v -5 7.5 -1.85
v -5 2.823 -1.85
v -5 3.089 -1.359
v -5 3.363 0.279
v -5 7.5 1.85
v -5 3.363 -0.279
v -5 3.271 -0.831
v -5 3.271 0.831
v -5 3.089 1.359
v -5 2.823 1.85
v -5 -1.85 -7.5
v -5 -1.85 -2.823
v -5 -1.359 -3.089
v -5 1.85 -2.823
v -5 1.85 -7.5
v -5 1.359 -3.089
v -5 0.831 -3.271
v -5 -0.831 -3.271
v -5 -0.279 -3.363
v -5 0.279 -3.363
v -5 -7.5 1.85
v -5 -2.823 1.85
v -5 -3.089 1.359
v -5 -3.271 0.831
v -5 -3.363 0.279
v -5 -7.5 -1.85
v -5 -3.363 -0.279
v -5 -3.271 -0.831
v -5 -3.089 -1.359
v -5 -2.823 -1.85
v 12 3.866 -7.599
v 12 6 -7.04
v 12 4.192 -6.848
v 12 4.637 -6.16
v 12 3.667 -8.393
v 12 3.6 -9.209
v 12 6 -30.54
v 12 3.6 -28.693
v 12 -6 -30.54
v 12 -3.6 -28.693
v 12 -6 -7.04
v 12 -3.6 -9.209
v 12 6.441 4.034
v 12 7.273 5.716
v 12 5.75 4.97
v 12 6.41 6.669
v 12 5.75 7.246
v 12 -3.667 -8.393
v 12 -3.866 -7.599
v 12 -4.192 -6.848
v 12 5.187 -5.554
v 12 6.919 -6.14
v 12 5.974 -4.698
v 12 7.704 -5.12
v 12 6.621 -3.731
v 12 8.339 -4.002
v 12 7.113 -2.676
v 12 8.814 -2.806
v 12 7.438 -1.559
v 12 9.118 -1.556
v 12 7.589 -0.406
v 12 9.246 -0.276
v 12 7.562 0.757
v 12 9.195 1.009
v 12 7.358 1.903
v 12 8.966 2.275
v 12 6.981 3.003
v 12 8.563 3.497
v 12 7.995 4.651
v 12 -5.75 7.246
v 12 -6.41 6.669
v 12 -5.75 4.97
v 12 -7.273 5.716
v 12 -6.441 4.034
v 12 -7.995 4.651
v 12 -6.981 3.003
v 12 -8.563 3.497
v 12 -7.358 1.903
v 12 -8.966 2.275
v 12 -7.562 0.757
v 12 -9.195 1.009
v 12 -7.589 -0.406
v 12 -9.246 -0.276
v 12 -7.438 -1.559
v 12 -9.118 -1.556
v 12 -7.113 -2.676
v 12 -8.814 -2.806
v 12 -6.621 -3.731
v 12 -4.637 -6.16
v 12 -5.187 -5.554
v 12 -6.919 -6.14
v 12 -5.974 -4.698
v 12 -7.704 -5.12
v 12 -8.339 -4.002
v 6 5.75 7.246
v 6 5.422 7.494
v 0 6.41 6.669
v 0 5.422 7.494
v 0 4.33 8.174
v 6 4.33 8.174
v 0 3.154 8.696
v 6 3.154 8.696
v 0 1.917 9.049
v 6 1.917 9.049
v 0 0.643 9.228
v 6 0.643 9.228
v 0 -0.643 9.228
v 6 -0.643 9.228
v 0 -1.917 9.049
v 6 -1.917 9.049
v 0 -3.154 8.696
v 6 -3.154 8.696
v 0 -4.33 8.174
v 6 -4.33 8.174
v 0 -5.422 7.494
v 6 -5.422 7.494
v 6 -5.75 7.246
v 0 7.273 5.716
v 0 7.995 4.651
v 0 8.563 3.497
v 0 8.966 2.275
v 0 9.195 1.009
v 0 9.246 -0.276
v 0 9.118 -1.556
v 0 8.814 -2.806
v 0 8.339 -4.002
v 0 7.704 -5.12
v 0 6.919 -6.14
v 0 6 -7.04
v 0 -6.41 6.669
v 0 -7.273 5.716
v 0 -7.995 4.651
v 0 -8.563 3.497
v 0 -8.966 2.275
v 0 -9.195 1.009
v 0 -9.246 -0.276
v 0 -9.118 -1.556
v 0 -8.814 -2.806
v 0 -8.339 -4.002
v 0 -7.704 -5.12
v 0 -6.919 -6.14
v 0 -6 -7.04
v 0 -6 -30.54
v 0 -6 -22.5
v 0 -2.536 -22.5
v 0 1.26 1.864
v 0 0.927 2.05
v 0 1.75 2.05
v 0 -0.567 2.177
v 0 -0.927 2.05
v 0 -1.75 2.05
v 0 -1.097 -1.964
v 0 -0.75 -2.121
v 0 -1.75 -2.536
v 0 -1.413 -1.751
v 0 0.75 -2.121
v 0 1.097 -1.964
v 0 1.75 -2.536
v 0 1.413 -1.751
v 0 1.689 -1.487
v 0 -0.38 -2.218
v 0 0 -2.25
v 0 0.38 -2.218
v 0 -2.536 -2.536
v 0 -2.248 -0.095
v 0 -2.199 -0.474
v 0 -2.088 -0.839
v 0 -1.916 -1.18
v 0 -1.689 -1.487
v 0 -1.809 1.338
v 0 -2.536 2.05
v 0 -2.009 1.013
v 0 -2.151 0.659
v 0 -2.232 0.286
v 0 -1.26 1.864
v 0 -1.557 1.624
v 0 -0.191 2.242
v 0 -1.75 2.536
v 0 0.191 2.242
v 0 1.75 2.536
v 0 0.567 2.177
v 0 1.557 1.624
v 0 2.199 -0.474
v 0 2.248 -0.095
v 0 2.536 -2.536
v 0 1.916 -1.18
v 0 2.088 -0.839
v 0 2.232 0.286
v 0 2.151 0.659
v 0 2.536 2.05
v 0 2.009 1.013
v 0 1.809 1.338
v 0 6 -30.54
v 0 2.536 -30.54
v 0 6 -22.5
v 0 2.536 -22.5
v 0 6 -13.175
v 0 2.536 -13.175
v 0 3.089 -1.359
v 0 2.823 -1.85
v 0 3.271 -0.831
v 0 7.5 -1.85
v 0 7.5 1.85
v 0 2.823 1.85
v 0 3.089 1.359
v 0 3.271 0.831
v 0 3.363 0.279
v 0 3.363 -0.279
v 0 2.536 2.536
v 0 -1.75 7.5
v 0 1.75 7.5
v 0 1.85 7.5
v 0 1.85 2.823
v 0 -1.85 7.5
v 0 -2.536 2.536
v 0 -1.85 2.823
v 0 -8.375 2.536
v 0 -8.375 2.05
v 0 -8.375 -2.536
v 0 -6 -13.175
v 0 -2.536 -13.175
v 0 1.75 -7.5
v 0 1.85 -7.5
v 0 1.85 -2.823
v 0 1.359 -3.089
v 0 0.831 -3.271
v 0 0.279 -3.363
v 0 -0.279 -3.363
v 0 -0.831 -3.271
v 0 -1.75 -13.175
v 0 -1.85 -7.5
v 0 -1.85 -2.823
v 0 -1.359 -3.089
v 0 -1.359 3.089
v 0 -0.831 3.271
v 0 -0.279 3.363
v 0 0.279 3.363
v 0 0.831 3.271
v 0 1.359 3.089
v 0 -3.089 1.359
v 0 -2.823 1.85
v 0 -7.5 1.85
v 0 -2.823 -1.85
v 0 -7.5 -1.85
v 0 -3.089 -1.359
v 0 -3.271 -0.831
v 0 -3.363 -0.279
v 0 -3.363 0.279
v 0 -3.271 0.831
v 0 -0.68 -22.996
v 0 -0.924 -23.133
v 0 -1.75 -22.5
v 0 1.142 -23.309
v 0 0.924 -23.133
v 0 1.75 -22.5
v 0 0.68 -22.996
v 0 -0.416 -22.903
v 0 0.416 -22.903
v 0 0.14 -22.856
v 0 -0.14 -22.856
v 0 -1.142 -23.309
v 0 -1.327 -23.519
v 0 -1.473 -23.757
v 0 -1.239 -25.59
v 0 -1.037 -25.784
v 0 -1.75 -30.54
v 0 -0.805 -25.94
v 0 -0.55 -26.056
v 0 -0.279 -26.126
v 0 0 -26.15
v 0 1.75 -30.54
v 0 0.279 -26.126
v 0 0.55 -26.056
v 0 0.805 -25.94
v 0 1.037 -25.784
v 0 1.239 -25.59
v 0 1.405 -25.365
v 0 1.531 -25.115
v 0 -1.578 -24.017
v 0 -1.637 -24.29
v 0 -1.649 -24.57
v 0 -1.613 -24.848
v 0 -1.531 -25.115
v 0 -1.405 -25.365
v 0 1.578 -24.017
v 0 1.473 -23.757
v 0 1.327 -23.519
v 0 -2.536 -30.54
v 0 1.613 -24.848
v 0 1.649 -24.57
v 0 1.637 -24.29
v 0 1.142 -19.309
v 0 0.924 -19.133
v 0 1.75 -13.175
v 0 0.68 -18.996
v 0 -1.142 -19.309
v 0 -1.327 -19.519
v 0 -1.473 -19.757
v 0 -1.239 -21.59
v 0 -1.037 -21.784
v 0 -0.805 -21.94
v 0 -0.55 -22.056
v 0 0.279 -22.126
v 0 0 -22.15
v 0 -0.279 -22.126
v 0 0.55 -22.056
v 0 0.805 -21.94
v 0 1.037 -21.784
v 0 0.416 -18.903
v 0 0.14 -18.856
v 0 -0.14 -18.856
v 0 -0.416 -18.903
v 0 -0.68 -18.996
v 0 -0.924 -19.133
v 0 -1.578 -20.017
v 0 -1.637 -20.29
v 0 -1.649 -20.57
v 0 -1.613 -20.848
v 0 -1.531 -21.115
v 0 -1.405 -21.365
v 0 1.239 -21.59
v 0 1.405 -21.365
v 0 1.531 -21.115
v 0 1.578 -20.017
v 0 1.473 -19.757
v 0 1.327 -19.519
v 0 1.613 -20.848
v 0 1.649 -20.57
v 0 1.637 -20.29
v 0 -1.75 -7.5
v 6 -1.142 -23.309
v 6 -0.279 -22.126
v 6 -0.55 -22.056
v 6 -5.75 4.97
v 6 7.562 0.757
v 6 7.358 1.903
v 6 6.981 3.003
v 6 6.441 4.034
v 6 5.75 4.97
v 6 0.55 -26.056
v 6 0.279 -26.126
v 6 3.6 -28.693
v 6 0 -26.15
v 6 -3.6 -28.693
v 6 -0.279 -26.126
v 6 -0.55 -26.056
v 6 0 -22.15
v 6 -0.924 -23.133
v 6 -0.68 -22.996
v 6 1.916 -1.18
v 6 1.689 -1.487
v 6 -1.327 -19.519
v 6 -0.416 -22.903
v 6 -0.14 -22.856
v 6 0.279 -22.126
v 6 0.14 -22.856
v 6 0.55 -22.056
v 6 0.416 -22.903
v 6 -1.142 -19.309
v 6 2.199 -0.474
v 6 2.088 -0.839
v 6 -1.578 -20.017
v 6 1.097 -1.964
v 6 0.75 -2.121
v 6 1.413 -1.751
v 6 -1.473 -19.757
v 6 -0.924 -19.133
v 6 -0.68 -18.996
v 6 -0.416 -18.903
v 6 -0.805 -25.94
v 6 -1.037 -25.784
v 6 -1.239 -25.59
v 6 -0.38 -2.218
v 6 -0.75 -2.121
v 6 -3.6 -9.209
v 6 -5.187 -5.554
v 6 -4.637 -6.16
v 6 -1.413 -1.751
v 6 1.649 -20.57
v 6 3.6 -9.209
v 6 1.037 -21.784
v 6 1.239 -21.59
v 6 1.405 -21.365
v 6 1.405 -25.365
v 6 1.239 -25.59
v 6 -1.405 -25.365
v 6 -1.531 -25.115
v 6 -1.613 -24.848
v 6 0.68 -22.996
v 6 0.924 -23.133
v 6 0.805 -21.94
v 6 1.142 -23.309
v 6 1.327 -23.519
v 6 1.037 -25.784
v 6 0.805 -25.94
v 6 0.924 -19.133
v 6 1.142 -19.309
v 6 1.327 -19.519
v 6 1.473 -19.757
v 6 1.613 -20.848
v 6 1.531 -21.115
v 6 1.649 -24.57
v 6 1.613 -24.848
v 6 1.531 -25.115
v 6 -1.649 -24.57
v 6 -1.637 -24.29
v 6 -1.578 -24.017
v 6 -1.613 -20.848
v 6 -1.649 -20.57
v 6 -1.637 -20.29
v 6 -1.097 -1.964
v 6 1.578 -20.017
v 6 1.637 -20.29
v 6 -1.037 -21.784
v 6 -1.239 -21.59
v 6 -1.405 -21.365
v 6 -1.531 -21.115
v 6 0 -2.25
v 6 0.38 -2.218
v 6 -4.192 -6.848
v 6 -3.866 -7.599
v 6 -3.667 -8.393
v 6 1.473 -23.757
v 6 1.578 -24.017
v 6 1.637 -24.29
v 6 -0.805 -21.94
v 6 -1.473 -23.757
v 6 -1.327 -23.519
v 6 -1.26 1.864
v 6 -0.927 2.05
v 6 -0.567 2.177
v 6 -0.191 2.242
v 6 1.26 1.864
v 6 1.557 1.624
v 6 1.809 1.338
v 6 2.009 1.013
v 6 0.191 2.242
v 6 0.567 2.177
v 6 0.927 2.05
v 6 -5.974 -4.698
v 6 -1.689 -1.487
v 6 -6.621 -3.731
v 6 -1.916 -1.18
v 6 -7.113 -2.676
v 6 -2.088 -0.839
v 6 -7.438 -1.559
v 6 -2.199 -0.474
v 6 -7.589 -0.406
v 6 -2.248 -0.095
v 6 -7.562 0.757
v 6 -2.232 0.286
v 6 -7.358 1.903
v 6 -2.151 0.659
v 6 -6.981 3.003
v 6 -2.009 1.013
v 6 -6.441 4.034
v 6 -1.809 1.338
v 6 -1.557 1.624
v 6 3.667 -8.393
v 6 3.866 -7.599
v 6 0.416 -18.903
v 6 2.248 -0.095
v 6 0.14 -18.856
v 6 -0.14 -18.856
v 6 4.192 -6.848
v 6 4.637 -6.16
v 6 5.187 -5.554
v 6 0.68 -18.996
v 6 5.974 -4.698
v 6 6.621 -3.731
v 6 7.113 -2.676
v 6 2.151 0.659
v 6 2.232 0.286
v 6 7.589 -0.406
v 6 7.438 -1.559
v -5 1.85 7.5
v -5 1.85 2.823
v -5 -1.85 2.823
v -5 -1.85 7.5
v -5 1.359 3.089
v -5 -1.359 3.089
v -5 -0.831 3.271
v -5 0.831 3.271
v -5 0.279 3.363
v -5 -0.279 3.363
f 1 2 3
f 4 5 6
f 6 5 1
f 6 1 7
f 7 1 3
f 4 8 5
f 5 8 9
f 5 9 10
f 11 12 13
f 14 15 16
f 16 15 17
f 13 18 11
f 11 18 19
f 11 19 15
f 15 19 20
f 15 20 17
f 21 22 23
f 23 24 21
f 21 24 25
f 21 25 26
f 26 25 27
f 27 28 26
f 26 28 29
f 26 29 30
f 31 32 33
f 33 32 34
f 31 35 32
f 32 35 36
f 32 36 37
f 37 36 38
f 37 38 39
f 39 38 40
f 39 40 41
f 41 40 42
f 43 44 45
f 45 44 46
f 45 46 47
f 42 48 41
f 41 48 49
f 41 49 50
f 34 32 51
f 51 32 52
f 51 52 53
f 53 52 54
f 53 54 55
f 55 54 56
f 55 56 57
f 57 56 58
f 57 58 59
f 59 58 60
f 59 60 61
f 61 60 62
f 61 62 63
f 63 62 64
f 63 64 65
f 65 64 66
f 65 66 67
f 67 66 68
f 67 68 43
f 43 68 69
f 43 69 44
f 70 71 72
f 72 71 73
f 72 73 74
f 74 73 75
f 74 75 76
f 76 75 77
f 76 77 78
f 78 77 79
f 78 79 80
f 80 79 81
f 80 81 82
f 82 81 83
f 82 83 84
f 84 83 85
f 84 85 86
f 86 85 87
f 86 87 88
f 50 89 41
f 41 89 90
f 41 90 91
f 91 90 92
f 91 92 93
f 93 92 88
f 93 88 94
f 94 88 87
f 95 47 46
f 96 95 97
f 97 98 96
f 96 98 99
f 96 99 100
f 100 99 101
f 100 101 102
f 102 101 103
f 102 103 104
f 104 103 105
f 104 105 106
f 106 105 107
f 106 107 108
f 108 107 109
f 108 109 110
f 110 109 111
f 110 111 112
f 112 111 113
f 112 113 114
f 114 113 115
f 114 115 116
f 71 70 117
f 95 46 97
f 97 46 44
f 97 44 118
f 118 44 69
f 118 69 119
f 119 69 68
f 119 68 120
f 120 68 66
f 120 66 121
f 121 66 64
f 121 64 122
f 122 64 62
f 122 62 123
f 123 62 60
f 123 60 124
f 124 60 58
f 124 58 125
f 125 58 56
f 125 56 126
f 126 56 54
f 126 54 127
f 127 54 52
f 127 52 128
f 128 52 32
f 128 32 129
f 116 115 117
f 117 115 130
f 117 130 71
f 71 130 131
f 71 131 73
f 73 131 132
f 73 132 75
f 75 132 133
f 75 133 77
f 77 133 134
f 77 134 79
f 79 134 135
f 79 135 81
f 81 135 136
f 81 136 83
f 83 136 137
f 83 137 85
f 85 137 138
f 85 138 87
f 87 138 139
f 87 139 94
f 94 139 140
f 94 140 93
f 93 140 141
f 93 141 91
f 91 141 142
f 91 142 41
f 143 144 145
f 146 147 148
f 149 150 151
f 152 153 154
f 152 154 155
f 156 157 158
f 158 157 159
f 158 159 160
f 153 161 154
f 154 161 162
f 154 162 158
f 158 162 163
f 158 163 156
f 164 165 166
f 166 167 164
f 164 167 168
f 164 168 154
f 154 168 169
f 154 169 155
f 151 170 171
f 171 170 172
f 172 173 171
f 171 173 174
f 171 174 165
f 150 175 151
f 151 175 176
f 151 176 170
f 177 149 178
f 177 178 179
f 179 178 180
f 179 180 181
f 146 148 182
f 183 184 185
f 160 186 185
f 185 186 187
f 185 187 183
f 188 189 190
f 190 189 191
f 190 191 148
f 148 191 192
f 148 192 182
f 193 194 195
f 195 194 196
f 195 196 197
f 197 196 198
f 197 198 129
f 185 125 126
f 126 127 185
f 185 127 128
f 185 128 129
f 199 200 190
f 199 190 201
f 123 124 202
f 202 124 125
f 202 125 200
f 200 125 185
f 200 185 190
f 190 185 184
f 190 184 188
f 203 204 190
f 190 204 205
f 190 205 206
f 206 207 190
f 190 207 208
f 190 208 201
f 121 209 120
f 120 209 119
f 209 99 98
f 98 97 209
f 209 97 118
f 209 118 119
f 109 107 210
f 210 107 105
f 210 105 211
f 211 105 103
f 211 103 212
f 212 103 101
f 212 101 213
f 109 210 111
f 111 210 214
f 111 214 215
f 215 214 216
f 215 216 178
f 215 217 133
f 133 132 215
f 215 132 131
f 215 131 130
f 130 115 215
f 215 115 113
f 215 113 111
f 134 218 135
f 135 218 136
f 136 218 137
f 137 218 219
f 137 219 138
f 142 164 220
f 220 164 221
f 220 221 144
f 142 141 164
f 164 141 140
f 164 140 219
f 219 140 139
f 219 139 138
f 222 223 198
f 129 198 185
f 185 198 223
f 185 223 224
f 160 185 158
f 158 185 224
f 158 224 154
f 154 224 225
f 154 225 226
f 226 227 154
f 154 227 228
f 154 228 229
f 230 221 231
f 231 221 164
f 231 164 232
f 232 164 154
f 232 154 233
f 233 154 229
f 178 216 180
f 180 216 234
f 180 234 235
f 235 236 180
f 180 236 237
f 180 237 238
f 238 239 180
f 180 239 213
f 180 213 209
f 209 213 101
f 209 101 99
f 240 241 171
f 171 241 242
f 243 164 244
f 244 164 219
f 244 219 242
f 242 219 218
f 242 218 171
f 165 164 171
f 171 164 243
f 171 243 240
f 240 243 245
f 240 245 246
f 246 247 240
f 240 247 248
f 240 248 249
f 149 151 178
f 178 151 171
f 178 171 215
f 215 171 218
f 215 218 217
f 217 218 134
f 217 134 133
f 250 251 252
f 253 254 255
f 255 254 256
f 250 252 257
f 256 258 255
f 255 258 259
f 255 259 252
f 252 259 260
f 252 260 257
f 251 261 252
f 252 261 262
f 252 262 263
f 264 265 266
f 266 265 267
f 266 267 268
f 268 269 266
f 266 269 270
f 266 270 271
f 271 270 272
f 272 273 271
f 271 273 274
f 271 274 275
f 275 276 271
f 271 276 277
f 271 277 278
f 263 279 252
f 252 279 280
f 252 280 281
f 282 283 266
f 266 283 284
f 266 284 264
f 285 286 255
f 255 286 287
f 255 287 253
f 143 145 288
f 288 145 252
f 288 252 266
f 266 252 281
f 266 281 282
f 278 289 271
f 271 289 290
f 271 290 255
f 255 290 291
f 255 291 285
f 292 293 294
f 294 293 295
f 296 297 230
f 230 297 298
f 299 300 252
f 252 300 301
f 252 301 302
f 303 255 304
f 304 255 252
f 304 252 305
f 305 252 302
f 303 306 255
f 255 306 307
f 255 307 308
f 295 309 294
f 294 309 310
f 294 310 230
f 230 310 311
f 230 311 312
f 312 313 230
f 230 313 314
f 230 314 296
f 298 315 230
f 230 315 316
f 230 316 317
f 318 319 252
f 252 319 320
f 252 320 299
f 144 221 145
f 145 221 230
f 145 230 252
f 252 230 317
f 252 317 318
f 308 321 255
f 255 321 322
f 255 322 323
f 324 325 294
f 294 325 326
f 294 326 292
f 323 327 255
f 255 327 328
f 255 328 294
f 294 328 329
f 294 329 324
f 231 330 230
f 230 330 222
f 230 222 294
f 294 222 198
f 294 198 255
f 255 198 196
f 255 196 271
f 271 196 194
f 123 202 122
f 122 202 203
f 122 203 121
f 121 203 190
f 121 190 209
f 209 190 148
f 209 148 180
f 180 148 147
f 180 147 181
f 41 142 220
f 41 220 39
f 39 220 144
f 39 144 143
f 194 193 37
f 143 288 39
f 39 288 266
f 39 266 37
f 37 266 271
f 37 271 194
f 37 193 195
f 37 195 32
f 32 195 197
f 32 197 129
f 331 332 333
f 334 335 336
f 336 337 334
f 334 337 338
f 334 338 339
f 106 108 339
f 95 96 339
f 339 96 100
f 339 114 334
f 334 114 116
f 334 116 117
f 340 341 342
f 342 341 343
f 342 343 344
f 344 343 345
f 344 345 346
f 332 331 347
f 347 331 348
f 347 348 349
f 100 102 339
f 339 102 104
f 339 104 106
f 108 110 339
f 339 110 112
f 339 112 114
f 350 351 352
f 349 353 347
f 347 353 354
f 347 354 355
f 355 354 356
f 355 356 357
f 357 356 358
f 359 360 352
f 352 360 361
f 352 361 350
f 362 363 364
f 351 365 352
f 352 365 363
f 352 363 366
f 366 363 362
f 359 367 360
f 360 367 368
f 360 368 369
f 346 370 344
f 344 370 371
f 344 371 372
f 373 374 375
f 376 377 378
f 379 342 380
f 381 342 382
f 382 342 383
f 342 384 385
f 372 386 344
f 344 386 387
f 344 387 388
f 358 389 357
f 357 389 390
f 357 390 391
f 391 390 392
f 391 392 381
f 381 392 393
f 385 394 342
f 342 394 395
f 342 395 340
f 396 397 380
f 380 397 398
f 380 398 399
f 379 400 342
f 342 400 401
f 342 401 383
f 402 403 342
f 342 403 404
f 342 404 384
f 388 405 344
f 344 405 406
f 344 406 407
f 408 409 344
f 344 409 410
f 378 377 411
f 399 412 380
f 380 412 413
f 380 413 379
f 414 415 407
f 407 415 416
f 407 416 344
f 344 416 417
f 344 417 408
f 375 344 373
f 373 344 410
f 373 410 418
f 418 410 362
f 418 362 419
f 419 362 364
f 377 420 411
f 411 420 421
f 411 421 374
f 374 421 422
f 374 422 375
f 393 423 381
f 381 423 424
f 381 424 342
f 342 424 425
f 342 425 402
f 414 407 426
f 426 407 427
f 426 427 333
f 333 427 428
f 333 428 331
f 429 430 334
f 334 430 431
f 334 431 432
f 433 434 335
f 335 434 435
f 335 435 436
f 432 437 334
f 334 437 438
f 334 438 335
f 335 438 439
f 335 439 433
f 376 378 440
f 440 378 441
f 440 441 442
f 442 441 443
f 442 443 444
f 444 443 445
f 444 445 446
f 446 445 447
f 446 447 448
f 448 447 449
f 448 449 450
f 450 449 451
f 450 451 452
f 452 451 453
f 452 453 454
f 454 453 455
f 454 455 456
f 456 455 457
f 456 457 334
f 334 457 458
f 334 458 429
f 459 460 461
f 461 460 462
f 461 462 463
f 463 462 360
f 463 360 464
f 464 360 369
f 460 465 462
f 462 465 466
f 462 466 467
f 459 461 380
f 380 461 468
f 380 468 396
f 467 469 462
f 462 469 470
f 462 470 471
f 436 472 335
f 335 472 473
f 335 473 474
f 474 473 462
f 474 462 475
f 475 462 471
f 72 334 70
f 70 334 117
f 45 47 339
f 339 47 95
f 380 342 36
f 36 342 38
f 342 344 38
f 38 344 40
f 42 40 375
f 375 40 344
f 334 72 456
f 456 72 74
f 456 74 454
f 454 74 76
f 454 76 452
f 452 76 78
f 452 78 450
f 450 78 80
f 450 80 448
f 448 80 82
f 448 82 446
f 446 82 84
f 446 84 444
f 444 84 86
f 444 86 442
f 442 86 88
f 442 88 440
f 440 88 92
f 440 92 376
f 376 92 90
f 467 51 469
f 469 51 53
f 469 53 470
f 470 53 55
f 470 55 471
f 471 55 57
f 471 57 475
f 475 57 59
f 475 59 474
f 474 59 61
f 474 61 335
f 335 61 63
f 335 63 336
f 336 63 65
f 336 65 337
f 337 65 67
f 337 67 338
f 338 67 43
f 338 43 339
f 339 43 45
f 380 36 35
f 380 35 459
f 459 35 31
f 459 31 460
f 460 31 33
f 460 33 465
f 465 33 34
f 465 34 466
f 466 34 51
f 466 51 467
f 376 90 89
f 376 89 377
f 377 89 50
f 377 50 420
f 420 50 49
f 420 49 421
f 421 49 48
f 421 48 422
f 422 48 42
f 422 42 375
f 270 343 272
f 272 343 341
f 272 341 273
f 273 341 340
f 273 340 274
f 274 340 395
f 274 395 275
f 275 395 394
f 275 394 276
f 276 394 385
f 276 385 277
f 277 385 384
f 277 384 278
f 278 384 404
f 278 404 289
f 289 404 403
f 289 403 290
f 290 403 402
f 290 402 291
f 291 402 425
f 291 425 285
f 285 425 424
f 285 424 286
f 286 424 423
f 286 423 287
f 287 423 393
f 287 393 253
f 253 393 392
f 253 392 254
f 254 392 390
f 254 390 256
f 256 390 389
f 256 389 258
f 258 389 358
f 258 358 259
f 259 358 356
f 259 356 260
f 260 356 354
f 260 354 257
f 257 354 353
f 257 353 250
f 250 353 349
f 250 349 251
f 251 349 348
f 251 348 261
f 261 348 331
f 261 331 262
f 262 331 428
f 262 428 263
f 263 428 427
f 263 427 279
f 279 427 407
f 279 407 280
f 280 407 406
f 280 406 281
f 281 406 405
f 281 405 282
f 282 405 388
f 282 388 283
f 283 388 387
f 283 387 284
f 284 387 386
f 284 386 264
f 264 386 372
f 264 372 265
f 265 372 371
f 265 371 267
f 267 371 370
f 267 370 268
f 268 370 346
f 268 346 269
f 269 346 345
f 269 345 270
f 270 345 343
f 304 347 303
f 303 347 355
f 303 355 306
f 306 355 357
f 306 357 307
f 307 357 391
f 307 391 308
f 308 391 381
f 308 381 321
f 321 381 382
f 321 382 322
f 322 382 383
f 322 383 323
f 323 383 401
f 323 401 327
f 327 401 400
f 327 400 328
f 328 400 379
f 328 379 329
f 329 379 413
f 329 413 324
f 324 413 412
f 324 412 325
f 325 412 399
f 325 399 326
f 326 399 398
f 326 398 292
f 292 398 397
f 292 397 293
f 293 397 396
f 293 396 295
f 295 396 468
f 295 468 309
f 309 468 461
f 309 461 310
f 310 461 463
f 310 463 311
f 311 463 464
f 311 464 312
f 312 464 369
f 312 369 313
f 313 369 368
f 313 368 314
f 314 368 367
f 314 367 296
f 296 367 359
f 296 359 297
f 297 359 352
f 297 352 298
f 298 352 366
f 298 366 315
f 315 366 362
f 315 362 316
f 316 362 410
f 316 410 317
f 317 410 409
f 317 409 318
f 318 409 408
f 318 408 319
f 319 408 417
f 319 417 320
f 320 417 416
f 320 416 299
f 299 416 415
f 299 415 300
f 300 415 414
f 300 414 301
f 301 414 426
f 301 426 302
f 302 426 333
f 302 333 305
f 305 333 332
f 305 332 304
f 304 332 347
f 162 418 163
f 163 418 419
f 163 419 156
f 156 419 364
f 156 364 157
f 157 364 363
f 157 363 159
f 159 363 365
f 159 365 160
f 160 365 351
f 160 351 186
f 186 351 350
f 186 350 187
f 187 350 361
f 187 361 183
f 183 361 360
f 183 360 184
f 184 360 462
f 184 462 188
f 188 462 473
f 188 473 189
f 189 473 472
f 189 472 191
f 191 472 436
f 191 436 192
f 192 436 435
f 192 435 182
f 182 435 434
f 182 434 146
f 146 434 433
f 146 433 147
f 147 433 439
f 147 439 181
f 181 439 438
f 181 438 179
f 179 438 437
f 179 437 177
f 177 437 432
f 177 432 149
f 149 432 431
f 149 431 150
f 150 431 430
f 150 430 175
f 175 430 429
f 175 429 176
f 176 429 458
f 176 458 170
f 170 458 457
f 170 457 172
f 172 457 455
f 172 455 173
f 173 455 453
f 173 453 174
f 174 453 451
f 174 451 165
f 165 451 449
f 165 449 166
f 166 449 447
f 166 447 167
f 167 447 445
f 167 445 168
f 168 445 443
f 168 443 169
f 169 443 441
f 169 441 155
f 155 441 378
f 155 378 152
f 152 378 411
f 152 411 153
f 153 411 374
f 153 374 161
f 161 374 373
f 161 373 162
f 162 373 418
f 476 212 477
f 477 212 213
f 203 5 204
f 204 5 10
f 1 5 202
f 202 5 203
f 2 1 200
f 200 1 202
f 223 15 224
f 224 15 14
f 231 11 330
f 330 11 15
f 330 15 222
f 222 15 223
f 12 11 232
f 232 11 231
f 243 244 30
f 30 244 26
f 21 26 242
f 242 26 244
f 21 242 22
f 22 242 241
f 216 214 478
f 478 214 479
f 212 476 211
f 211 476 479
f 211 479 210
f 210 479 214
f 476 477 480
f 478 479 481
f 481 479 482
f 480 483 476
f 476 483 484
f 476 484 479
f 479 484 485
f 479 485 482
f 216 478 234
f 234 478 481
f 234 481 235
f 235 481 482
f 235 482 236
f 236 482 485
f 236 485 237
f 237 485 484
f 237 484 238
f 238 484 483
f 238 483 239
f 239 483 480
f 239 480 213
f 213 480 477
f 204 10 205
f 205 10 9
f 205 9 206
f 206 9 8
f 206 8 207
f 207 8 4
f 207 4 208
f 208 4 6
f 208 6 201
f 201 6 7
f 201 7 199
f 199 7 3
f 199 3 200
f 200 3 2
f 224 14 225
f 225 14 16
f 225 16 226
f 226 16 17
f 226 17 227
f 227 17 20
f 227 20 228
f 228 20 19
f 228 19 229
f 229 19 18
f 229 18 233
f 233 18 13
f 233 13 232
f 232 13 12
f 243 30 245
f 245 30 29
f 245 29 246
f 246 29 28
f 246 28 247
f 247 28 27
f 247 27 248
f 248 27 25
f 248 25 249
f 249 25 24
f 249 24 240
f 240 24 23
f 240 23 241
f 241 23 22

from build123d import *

# Parameters (mm, degrees)
BOSS_EXTRUDE1_DEPTH = 12
SKETCH2_R           = 7.6
SKETCH2_W           = 22
SKETCH2_H           = 7.2
SKETCH2_W_2         = 6.090233647
SKETCH2_H_2         = 11.5
CUT_EXTRUDE1_DEPTH  = 6
FILLET1_R           = 5
SKETCH3_R           = 2.25
SKETCH3_R_2         = 1.65
CUT_EXTRUDE2_DEPTH  = 6
BOSS_EXTRUDE2_DEPTH = 5
SKETCH6_R           = 3.375
CUT_EXTRUDE3_DEPTH  = 5


with BuildPart() as part:
    # Sketch1 → Boss-Extrude1 (new body)
    with BuildSketch(Plane(origin=(0, 0, 0), x_dir=(0, 0, -1), z_dir=(1, 0, 0))):
        with BuildLine():
            Line((30.54006392, 6), (7.04006392, 6))
            ThreePointArc((7.04006392, 6), (8.679950785, 3.197022735), (9.25, 0))
            ThreePointArc((9.25, 0), (8.679950785, -3.197022735), (7.04006392, -6))
            Line((7.04006392, -6), (30.54006392, -6))
            Line((30.54006392, -6), (30.54006392, 6))
        make_face()
        with BuildLine():
            ThreePointArc((9.25, 0), (8.679950785, 3.197022735), (7.04006392, 6))
            Line((7.04006392, 6), (7.04006392, -6))
            ThreePointArc((7.04006392, -6), (8.679950785, -3.197022735), (9.25, 0))
        make_face()
        with BuildLine():
            Line((7.04006392, -6), (7.04006392, 6))
            ThreePointArc((7.04006392, 6), (-9.25, 0), (7.04006392, -6))
        make_face()
    extrude(amount=BOSS_EXTRUDE1_DEPTH)

    # Sketch2 → Cut-Extrude1 (cut)
    with BuildSketch(Plane(origin=(12, 0, 0), x_dir=(0, 0, -1), z_dir=(1, 0, 0))):
        Circle(SKETCH2_R)
        with Locations((17.693280212, 0)):
            Rectangle(SKETCH2_W, SKETCH2_H)
        with Locations((-8.014774759, 0)):
            Rectangle(SKETCH2_W_2, SKETCH2_H_2)
    extrude(amount=-CUT_EXTRUDE1_DEPTH, mode=Mode.SUBTRACT)

    # Fillet1
    fillet1_edges = [part.edges().sort_by_distance(p)[0] for p in [
        (9, 3.6, -6.693280212),
        (9, -3.6, -6.693280212),
    ]]
    fillet(fillet1_edges, radius=FILLET1_R)

    # Sketch3 → Cut-Extrude2 (cut)
    with BuildSketch(Plane(origin=(6, 0, 0), x_dir=(0, 0, -1), z_dir=(1, 0, 0))):
        Circle(SKETCH3_R)
        with Locations((20.5, 0)):
            Circle(SKETCH3_R_2)
        with Locations((24.5, 0)):
            Circle(SKETCH3_R_2)
    extrude(amount=-CUT_EXTRUDE2_DEPTH, mode=Mode.SUBTRACT)

    # Sketch5 → Boss-Extrude2 (add)
    with BuildSketch(Plane.ZY):
        with BuildLine():
            Line((-1.85, 1.85), (-7.5, 1.85))
            Line((-7.5, 1.85), (-7.5, -1.85))
            Line((-7.5, -1.85), (-1.85, -1.85))
            Line((-1.85, -1.85), (-1.85, -1.280624847))
            ThreePointArc((-1.85, -1.280624847), (-2.25, 0), (-1.85, 1.280624847))
            Line((-1.85, 1.280624847), (-1.85, 1.85))
        make_face()
        with BuildLine():
            Line((-1.85, 7.5), (-1.85, 1.85))
            Line((-1.85, 1.85), (-1.280624847, 1.85))
            ThreePointArc((-1.280624847, 1.85), (0, 2.25), (1.280624847, 1.85))
            Line((1.280624847, 1.85), (1.85, 1.85))
            Line((1.85, 1.85), (1.85, 7.5))
            Line((1.85, 7.5), (-1.85, 7.5))
        make_face()
        with BuildLine():
            Line((7.5, 1.85), (1.85, 1.85))
            Line((1.85, 1.85), (1.85, 1.280624847))
            ThreePointArc((1.85, 1.280624847), (2.147673159, 0.670820393), (2.25, 0))
            ThreePointArc((2.25, 0), (2.147673159, -0.670820393), (1.85, -1.280624847))
            Line((1.85, -1.280624847), (1.85, -1.85))
            Line((1.85, -1.85), (7.5, -1.85))
            Line((7.5, -1.85), (7.5, 1.85))
        make_face()
        with BuildLine():
            Line((-1.280624847, -1.85), (-1.85, -1.85))
            Line((-1.85, -1.85), (-1.85, -7.5))
            Line((-1.85, -7.5), (1.85, -7.5))
            Line((1.85, -7.5), (1.85, -1.85))
            Line((1.85, -1.85), (1.280624847, -1.85))
            ThreePointArc((1.280624847, -1.85), (0, -2.25), (-1.280624847, -1.85))
        make_face()
        with BuildLine():
            Line((-1.280624847, 1.85), (-1.85, 1.85))
            Line((-1.85, 1.85), (-1.85, 1.280624847))
            ThreePointArc((-1.85, 1.280624847), (-1.590990258, 1.590990258), (-1.280624847, 1.85))
        make_face()
        with BuildLine():
            Line((1.85, 1.85), (1.280624847, 1.85))
            ThreePointArc((1.280624847, 1.85), (1.590990258, 1.590990258), (1.85, 1.280624847))
            Line((1.85, 1.280624847), (1.85, 1.85))
        make_face()
        with BuildLine():
            ThreePointArc((1.85, -1.280624847), (1.590990258, -1.590990258), (1.280624847, -1.85))
            Line((1.280624847, -1.85), (1.85, -1.85))
            Line((1.85, -1.85), (1.85, -1.280624847))
        make_face()
        with BuildLine():
            Line((-1.85, -1.280624847), (-1.85, -1.85))
            Line((-1.85, -1.85), (-1.280624847, -1.85))
            ThreePointArc((-1.280624847, -1.85), (-1.590990258, -1.590990258), (-1.85, -1.280624847))
        make_face()
    extrude(amount=BOSS_EXTRUDE2_DEPTH)

    # Sketch6 → Cut-Extrude3 (cut)
    with BuildSketch(Plane.ZY.offset(5)):
        Circle(SKETCH6_R)
    extrude(amount=-CUT_EXTRUDE3_DEPTH, mode=Mode.SUBTRACT)


solid = part.part
